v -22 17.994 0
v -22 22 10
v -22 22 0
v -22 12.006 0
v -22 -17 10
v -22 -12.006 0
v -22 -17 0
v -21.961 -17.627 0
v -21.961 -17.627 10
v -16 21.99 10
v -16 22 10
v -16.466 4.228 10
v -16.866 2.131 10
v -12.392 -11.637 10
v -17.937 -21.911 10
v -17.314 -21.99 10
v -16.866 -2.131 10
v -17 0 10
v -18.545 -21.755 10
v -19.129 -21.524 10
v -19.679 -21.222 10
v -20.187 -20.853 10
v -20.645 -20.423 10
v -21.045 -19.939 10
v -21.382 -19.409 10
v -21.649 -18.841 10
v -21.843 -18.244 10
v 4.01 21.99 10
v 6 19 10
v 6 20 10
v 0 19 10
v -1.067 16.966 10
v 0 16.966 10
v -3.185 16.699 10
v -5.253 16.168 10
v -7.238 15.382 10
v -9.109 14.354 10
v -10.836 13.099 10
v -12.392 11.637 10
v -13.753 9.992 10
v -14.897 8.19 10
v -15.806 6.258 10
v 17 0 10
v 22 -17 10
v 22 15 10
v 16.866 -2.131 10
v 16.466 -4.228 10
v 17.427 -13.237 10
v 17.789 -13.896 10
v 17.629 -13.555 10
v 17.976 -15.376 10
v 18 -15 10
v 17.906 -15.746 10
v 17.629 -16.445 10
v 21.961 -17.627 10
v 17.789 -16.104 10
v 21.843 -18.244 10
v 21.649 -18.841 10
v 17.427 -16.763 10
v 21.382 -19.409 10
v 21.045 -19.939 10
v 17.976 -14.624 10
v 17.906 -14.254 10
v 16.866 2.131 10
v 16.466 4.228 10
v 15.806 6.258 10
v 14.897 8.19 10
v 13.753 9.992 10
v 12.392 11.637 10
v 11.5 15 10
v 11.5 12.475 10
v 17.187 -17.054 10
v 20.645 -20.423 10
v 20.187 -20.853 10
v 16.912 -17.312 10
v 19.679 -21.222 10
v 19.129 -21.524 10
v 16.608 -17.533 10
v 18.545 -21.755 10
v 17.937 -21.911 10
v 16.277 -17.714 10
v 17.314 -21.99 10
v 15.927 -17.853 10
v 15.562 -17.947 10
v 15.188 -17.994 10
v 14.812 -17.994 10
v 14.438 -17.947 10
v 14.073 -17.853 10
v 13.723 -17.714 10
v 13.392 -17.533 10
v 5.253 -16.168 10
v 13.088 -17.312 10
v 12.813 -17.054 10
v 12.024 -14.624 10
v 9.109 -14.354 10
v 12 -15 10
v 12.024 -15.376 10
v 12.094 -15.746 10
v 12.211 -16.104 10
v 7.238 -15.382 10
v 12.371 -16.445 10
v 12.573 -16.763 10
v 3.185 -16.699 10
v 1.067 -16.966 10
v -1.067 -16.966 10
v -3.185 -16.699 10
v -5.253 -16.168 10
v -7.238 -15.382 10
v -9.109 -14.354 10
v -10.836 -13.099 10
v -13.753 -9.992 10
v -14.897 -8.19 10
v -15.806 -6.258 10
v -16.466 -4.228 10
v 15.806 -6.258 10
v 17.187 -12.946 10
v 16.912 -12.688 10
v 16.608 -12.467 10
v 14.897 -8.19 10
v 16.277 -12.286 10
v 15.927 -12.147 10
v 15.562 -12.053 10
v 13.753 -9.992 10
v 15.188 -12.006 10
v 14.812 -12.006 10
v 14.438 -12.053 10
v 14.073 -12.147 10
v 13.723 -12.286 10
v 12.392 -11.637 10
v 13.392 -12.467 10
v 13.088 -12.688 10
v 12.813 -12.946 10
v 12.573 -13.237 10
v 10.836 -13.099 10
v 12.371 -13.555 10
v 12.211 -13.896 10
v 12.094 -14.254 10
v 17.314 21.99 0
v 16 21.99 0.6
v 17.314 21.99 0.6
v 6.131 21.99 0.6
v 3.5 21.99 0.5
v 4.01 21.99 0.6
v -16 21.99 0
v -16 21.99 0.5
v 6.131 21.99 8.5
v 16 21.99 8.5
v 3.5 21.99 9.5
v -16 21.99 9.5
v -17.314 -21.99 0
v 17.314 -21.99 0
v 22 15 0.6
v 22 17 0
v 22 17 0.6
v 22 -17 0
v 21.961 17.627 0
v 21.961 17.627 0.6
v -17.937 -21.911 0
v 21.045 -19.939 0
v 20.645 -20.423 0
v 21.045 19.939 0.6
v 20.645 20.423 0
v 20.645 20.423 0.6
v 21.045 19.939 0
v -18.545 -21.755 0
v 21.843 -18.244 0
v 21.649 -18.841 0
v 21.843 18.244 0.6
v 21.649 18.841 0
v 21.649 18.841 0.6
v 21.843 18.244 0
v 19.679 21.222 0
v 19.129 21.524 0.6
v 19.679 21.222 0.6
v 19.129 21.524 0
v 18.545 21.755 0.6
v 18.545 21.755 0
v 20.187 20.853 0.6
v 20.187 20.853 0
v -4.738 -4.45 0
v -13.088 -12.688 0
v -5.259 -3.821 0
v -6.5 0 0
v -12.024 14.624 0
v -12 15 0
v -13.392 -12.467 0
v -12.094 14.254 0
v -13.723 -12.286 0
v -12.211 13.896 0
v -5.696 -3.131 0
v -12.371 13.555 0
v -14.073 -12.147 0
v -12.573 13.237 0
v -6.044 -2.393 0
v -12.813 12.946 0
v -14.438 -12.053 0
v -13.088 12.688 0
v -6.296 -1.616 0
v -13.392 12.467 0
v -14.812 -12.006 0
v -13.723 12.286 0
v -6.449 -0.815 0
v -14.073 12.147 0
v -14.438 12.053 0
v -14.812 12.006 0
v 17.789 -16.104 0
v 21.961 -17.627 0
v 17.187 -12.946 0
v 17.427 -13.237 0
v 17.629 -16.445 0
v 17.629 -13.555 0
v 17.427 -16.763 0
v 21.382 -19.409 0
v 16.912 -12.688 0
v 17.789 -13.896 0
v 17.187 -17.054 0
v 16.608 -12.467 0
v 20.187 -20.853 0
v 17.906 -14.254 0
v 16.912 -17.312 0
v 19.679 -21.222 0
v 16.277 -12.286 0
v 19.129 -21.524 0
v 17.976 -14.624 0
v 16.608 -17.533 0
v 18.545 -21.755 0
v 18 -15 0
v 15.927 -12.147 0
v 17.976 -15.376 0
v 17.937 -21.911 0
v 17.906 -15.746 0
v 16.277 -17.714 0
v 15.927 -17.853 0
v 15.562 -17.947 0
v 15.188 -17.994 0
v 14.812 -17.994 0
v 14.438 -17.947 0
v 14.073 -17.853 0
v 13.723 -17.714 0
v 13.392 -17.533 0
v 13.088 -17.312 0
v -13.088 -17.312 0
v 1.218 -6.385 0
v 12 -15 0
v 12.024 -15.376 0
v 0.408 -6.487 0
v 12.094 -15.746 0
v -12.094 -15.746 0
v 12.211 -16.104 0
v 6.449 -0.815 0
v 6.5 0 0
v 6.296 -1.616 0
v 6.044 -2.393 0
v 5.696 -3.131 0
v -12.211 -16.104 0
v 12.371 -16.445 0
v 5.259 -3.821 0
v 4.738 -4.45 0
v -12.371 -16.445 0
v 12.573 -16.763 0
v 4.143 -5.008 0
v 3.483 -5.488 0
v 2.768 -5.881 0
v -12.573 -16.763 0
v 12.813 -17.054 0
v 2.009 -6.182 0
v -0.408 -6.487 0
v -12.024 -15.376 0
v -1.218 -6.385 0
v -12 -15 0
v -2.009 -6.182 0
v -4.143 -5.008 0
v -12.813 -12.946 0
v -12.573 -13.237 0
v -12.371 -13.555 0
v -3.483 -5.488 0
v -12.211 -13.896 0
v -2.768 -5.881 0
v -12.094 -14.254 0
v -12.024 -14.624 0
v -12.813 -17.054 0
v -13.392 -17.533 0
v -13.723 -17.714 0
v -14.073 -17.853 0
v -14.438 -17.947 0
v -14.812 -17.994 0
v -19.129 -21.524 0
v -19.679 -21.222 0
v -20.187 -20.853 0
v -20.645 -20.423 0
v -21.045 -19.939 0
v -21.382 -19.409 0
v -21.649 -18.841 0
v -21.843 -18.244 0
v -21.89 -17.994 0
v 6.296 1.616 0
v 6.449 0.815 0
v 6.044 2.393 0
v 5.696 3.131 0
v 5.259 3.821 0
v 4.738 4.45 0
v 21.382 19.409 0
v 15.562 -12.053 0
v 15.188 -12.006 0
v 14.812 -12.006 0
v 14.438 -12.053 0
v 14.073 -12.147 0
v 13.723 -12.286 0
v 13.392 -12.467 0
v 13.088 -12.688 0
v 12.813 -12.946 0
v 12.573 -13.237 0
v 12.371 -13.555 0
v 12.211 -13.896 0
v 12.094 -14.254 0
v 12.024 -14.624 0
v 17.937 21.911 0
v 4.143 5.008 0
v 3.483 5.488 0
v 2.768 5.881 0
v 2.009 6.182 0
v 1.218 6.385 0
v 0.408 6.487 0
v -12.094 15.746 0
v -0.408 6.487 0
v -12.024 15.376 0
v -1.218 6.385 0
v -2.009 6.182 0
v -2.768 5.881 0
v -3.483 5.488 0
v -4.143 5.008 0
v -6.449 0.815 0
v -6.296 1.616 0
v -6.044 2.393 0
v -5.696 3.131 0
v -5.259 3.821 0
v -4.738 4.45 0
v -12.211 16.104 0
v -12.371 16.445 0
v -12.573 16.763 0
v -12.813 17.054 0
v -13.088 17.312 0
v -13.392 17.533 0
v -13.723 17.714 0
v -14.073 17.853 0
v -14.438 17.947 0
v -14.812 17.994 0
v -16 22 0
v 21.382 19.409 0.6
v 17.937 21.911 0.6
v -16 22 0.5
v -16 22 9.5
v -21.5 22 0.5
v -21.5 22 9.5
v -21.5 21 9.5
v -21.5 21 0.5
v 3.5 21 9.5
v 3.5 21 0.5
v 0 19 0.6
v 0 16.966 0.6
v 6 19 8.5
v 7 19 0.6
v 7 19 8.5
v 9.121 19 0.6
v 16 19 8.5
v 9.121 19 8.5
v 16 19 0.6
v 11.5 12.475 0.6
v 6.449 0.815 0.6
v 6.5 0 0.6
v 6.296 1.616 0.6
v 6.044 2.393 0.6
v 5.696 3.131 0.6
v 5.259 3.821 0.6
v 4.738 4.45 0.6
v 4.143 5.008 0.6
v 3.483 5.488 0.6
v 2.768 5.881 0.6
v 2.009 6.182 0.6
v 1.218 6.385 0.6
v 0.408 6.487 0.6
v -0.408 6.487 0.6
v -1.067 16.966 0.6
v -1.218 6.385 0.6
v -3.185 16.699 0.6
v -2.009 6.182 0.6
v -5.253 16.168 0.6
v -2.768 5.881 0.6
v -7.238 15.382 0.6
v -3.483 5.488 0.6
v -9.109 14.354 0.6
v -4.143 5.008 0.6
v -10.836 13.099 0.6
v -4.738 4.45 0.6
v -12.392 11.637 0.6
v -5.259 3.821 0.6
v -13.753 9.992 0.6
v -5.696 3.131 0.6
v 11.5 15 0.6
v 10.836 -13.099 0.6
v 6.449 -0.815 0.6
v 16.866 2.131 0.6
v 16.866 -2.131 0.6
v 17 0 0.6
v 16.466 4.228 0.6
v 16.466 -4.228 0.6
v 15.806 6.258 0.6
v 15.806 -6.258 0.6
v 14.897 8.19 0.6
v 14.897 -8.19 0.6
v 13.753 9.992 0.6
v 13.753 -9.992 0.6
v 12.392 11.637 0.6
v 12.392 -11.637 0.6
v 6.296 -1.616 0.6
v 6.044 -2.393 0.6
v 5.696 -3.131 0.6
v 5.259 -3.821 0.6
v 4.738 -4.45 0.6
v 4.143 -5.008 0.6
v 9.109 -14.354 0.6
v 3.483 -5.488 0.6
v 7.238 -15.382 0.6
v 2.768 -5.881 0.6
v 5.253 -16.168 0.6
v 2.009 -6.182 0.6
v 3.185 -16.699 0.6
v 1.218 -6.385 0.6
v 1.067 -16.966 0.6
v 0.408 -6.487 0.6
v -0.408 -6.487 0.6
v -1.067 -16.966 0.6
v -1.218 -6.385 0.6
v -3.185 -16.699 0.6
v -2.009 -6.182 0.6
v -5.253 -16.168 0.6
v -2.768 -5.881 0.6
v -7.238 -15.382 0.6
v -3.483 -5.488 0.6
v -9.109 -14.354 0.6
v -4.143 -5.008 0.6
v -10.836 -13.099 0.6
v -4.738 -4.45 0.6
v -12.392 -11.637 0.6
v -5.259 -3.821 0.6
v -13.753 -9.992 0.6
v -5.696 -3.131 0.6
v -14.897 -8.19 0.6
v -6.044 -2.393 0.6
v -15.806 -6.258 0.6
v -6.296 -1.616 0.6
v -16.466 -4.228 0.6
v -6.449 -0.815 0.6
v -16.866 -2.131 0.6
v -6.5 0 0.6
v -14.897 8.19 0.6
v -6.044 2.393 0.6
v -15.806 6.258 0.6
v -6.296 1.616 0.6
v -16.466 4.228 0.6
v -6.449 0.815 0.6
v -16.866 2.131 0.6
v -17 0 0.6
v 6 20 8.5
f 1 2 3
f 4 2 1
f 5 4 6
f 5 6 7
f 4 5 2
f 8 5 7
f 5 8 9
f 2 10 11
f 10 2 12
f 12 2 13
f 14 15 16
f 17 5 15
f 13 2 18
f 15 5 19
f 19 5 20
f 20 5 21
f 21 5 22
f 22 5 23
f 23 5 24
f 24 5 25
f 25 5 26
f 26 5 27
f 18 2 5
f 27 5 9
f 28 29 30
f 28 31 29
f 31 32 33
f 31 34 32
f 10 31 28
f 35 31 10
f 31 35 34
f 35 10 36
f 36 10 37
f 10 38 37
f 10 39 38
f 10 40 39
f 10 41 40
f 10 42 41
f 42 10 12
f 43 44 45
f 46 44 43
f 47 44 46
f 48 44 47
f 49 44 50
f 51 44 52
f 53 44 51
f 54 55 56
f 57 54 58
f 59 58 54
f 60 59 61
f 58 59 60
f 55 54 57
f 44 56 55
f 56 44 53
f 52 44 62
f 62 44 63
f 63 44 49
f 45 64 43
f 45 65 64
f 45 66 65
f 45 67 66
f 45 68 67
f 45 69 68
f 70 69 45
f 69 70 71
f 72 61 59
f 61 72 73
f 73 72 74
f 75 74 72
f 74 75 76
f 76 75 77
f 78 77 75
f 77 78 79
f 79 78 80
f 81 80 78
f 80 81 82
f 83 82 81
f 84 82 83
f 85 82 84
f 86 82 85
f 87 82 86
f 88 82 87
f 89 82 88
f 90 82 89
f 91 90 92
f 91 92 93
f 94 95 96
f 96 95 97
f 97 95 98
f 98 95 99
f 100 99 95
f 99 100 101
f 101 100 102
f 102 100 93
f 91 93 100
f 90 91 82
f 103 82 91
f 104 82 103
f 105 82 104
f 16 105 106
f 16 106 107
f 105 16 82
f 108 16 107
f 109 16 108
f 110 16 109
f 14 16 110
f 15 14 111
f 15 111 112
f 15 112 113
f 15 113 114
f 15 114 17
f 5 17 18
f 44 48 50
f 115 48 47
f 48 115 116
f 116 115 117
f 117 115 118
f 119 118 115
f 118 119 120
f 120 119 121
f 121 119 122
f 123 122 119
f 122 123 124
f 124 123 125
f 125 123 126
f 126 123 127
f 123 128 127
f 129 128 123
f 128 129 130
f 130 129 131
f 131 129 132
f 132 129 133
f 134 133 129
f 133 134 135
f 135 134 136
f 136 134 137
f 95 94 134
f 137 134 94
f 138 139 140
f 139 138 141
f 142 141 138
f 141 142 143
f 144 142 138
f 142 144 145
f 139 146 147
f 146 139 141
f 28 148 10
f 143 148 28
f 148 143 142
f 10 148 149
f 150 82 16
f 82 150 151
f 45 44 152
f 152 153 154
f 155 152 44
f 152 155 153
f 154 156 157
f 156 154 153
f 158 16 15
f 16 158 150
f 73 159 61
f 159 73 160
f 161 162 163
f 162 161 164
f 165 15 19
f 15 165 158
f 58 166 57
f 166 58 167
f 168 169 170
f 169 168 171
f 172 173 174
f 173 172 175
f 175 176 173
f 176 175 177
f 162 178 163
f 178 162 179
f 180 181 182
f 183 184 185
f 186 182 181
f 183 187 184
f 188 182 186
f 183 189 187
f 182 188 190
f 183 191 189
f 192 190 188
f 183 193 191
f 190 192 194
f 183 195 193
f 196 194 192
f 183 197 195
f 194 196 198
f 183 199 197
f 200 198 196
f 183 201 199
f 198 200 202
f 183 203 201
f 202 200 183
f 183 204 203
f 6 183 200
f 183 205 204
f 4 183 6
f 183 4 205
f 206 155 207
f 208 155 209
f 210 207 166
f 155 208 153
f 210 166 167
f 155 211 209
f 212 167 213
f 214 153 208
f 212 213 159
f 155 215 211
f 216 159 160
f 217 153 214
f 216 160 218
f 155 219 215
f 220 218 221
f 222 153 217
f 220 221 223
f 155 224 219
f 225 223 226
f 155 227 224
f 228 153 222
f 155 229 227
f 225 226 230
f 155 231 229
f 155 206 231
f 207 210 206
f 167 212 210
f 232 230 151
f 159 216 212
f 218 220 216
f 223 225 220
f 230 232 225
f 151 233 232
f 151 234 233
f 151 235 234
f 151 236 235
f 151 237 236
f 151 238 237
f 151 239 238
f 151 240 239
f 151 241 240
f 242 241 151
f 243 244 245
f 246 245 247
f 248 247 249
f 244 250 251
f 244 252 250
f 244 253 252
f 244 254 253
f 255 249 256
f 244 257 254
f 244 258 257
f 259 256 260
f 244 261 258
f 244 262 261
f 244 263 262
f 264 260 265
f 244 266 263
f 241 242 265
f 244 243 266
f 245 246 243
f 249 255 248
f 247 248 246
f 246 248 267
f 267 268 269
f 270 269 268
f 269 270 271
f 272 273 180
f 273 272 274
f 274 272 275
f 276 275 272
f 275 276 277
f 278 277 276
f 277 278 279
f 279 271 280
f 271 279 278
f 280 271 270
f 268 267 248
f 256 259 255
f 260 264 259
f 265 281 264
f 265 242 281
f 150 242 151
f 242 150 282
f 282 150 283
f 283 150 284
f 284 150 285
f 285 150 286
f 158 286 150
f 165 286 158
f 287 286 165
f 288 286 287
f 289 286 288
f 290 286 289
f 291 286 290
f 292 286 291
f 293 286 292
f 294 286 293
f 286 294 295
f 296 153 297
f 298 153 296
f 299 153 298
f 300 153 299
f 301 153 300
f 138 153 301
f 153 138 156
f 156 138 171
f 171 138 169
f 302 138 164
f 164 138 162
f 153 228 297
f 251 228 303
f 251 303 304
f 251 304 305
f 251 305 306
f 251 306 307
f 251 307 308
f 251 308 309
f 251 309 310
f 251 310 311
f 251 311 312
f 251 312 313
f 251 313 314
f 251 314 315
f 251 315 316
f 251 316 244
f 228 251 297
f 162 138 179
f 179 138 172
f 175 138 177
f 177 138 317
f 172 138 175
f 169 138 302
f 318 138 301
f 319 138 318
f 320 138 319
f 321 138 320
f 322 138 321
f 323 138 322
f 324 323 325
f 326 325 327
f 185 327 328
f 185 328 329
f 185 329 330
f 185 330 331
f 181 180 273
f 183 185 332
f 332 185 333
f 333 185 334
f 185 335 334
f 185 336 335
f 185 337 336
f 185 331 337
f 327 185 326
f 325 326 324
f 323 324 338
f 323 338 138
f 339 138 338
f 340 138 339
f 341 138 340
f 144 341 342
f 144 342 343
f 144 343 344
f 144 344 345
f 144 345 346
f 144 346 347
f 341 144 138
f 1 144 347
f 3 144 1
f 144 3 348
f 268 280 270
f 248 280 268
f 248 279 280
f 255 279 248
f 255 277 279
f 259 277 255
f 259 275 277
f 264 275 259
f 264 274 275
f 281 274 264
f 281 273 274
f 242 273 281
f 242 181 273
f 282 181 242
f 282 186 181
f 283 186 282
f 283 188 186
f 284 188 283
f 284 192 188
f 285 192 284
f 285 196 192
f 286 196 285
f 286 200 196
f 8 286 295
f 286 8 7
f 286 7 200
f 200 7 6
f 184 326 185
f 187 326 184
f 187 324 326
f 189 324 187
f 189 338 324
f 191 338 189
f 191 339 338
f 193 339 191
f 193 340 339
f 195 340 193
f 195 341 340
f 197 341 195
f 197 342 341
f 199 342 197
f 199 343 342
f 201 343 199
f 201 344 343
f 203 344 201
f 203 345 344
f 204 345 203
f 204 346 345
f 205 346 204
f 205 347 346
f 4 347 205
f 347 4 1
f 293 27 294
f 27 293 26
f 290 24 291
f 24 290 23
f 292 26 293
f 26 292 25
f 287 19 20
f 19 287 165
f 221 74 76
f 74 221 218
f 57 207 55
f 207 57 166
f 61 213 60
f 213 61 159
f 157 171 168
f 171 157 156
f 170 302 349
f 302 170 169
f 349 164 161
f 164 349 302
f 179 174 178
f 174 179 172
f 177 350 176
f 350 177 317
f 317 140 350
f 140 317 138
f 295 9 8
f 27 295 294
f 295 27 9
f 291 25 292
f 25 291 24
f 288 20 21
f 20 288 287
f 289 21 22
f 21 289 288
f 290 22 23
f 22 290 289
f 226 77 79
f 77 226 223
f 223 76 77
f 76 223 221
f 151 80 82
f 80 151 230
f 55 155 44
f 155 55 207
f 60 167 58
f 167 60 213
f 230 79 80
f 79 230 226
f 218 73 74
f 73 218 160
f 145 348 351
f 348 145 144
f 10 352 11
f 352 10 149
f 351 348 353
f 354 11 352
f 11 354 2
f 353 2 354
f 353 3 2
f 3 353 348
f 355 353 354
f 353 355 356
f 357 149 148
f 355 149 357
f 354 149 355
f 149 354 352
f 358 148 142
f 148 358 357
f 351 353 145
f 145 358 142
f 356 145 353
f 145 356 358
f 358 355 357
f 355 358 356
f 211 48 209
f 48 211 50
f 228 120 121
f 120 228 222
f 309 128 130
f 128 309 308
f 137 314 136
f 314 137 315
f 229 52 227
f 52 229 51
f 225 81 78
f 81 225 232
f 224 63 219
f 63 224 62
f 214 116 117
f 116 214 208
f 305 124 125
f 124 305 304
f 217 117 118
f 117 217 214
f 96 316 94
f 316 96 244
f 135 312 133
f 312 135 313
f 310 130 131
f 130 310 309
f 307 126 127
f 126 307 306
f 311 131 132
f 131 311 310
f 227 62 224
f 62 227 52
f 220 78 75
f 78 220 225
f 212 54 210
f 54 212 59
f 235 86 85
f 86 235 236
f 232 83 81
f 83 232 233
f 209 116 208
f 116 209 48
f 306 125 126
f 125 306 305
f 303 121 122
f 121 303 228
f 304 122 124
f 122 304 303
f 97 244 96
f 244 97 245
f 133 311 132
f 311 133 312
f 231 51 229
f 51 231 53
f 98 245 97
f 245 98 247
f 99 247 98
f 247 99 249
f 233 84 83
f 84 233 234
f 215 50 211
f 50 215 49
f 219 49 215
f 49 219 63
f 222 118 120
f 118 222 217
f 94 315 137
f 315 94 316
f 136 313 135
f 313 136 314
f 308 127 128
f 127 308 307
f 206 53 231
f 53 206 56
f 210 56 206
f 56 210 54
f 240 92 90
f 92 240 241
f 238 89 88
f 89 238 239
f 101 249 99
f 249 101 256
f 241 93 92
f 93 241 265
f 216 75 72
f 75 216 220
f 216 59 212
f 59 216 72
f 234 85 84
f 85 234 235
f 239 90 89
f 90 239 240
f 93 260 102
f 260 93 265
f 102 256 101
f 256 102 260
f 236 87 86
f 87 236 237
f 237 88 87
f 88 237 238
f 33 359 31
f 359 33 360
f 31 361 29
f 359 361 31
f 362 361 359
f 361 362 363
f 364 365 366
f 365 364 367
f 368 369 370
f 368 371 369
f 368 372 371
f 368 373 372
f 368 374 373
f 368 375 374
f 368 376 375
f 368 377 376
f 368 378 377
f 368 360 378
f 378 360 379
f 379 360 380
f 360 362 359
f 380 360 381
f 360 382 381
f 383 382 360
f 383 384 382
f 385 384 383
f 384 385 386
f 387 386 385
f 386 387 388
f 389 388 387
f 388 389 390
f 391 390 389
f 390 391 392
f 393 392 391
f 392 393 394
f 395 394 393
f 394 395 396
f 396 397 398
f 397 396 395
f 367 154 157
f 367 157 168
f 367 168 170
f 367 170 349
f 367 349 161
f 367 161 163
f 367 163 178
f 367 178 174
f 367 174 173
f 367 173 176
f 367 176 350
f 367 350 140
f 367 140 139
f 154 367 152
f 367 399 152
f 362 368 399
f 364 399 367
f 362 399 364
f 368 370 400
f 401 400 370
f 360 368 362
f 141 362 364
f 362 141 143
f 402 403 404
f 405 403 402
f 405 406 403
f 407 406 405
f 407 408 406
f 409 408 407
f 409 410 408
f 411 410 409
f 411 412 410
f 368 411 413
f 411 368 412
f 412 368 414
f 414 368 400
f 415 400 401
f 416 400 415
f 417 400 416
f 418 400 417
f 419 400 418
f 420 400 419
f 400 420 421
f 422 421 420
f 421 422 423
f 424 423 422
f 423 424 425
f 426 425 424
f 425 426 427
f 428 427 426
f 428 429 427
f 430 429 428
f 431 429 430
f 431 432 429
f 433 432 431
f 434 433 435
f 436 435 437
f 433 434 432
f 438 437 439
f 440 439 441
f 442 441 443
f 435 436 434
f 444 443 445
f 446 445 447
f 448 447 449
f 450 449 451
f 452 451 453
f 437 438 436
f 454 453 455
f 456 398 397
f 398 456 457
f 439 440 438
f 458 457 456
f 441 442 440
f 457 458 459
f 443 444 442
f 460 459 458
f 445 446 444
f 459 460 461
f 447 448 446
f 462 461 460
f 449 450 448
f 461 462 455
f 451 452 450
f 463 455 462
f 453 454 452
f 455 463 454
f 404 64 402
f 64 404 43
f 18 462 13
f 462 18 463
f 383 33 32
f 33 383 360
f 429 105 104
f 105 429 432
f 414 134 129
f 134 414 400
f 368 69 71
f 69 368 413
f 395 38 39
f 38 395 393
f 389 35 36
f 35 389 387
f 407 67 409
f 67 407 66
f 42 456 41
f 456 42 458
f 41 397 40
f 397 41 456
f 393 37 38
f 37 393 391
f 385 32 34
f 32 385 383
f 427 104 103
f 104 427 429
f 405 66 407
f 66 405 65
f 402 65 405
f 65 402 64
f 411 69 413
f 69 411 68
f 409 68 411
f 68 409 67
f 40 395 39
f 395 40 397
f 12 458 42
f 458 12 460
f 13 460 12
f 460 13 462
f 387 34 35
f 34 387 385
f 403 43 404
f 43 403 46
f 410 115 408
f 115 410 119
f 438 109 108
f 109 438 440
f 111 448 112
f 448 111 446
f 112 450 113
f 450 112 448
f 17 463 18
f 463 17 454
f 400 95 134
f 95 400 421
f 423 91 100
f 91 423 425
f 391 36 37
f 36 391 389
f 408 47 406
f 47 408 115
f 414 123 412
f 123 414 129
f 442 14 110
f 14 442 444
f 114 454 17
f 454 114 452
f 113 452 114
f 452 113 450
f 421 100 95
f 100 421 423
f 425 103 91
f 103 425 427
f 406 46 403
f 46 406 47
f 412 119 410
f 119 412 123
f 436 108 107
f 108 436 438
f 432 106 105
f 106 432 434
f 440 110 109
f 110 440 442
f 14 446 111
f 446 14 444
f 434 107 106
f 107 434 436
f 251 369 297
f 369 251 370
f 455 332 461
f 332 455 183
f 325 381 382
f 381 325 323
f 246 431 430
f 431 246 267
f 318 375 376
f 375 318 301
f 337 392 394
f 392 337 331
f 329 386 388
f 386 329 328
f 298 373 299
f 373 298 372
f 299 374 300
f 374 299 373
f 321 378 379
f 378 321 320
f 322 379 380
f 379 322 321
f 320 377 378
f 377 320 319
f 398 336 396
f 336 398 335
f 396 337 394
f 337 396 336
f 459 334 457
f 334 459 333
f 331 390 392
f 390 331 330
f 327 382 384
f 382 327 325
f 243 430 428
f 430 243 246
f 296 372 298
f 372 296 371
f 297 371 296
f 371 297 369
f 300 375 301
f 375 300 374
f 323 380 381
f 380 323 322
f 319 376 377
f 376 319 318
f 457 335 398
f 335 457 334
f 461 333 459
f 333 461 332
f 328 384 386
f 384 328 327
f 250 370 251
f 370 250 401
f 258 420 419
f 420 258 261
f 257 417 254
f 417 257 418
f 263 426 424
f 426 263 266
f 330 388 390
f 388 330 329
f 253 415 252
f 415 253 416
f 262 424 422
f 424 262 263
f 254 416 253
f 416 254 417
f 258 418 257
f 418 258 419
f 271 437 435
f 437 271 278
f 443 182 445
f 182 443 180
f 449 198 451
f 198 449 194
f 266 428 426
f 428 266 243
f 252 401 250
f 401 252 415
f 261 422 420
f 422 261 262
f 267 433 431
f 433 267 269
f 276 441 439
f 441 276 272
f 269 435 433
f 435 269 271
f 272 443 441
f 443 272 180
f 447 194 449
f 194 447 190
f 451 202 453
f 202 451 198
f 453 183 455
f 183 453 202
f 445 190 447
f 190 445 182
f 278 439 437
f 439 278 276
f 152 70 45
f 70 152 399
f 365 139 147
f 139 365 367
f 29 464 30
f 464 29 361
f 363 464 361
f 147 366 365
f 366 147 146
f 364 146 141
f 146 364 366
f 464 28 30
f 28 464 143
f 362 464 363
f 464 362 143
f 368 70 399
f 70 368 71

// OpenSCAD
$fn = 50;


difference() {
	union() {
		hull() {
			translate(v = [-17.0000000000, 17.0000000000, 0]) {
				cylinder(h = 10, r = 5);
			}
			translate(v = [17.0000000000, 17.0000000000, 0]) {
				cylinder(h = 10, r = 5);
			}
			translate(v = [-17.0000000000, -17.0000000000, 0]) {
				cylinder(h = 10, r = 5);
			}
			translate(v = [17.0000000000, -17.0000000000, 0]) {
				cylinder(h = 10, r = 5);
			}
		}
		translate(v = [-22.0000000000, 16.0000000000, 0]) {
			cube(size = [6, 6, 10]);
		}
	}
	union() {
		translate(v = [-22.5000000000, -15.0000000000, -250.0000000000]) {
			rotate(a = [0, 0, 0]) {
				difference() {
					union() {
						hull() {
							translate(v = [7.5000000000, 0, 0]) {
								cylinder(h = 250, r = 3.0000000000, r1 = 3.0000000000, r2 = 3.0000000000);
							}
							translate(v = [-7.5000000000, 0, 0]) {
								cylinder(h = 250, r = 3.0000000000, r1 = 3.0000000000, r2 = 3.0000000000);
							}
						}
					}
					union();
				}
			}
		}
		translate(v = [-22.5000000000, 15.0000000000, -250.0000000000]) {
			rotate(a = [0, 0, 0]) {
				difference() {
					union() {
						hull() {
							translate(v = [7.5000000000, 0, 0]) {
								cylinder(h = 250, r = 3.0000000000, r1 = 3.0000000000, r2 = 3.0000000000);
							}
							translate(v = [-7.5000000000, 0, 0]) {
								cylinder(h = 250, r = 3.0000000000, r1 = 3.0000000000, r2 = 3.0000000000);
							}
						}
					}
					union();
				}
			}
		}
		translate(v = [-21.5000000000, 21.0000000000, 0.5000000000]) {
			cube(size = [25, 1, 9.0000000000]);
		}
		translate(v = [15.0000000000, -15.0000000000, -50.0000000000]) {
			cylinder(h = 100, r = 3.0000000000);
		}
		translate(v = [0.0000000000, 11.0000000000, 0.6000000000]) {
			cube(size = [11, 8, 12.4000000000]);
		}
		translate(v = [0, 0, 0.6000000000]) {
			cylinder(h = 12.4000000000, r = 17.0000000000);
		}
		translate(v = [0, 0, -5.0000000000]) {
			cylinder(h = 10, r = 6.5000000000);
		}
		translate(v = [0.0000000000, 15.0000000000, 0.6000000000]) {
			cube(size = [22.0000000000, 4, 12.4000000000]);
		}
		translate(v = [16.0000000000, 15.0000000000, 0.6000000000]) {
			cube(size = [6, 7, 12.4000000000]);
		}
		translate(v = [6.0000000000, 15.0000000000, 8.5000000000]) {
			cube(size = [16, 7, 1.5000000000]);
		}
		translate(v = [3.2500000000, 22.7500000000, 0.6000000000]) {
			rotate(a = [0, 0, -45]) {
				cube(size = [7.5000000000, 1.5000000000, 12.4000000000]);
			}
		}
		translate(v = [2.5000000000, 10.0000000000, 0.6000000000]) {
			cube(size = [9.0000000000, 5, 9.4000000000]);
		}
	}
}
